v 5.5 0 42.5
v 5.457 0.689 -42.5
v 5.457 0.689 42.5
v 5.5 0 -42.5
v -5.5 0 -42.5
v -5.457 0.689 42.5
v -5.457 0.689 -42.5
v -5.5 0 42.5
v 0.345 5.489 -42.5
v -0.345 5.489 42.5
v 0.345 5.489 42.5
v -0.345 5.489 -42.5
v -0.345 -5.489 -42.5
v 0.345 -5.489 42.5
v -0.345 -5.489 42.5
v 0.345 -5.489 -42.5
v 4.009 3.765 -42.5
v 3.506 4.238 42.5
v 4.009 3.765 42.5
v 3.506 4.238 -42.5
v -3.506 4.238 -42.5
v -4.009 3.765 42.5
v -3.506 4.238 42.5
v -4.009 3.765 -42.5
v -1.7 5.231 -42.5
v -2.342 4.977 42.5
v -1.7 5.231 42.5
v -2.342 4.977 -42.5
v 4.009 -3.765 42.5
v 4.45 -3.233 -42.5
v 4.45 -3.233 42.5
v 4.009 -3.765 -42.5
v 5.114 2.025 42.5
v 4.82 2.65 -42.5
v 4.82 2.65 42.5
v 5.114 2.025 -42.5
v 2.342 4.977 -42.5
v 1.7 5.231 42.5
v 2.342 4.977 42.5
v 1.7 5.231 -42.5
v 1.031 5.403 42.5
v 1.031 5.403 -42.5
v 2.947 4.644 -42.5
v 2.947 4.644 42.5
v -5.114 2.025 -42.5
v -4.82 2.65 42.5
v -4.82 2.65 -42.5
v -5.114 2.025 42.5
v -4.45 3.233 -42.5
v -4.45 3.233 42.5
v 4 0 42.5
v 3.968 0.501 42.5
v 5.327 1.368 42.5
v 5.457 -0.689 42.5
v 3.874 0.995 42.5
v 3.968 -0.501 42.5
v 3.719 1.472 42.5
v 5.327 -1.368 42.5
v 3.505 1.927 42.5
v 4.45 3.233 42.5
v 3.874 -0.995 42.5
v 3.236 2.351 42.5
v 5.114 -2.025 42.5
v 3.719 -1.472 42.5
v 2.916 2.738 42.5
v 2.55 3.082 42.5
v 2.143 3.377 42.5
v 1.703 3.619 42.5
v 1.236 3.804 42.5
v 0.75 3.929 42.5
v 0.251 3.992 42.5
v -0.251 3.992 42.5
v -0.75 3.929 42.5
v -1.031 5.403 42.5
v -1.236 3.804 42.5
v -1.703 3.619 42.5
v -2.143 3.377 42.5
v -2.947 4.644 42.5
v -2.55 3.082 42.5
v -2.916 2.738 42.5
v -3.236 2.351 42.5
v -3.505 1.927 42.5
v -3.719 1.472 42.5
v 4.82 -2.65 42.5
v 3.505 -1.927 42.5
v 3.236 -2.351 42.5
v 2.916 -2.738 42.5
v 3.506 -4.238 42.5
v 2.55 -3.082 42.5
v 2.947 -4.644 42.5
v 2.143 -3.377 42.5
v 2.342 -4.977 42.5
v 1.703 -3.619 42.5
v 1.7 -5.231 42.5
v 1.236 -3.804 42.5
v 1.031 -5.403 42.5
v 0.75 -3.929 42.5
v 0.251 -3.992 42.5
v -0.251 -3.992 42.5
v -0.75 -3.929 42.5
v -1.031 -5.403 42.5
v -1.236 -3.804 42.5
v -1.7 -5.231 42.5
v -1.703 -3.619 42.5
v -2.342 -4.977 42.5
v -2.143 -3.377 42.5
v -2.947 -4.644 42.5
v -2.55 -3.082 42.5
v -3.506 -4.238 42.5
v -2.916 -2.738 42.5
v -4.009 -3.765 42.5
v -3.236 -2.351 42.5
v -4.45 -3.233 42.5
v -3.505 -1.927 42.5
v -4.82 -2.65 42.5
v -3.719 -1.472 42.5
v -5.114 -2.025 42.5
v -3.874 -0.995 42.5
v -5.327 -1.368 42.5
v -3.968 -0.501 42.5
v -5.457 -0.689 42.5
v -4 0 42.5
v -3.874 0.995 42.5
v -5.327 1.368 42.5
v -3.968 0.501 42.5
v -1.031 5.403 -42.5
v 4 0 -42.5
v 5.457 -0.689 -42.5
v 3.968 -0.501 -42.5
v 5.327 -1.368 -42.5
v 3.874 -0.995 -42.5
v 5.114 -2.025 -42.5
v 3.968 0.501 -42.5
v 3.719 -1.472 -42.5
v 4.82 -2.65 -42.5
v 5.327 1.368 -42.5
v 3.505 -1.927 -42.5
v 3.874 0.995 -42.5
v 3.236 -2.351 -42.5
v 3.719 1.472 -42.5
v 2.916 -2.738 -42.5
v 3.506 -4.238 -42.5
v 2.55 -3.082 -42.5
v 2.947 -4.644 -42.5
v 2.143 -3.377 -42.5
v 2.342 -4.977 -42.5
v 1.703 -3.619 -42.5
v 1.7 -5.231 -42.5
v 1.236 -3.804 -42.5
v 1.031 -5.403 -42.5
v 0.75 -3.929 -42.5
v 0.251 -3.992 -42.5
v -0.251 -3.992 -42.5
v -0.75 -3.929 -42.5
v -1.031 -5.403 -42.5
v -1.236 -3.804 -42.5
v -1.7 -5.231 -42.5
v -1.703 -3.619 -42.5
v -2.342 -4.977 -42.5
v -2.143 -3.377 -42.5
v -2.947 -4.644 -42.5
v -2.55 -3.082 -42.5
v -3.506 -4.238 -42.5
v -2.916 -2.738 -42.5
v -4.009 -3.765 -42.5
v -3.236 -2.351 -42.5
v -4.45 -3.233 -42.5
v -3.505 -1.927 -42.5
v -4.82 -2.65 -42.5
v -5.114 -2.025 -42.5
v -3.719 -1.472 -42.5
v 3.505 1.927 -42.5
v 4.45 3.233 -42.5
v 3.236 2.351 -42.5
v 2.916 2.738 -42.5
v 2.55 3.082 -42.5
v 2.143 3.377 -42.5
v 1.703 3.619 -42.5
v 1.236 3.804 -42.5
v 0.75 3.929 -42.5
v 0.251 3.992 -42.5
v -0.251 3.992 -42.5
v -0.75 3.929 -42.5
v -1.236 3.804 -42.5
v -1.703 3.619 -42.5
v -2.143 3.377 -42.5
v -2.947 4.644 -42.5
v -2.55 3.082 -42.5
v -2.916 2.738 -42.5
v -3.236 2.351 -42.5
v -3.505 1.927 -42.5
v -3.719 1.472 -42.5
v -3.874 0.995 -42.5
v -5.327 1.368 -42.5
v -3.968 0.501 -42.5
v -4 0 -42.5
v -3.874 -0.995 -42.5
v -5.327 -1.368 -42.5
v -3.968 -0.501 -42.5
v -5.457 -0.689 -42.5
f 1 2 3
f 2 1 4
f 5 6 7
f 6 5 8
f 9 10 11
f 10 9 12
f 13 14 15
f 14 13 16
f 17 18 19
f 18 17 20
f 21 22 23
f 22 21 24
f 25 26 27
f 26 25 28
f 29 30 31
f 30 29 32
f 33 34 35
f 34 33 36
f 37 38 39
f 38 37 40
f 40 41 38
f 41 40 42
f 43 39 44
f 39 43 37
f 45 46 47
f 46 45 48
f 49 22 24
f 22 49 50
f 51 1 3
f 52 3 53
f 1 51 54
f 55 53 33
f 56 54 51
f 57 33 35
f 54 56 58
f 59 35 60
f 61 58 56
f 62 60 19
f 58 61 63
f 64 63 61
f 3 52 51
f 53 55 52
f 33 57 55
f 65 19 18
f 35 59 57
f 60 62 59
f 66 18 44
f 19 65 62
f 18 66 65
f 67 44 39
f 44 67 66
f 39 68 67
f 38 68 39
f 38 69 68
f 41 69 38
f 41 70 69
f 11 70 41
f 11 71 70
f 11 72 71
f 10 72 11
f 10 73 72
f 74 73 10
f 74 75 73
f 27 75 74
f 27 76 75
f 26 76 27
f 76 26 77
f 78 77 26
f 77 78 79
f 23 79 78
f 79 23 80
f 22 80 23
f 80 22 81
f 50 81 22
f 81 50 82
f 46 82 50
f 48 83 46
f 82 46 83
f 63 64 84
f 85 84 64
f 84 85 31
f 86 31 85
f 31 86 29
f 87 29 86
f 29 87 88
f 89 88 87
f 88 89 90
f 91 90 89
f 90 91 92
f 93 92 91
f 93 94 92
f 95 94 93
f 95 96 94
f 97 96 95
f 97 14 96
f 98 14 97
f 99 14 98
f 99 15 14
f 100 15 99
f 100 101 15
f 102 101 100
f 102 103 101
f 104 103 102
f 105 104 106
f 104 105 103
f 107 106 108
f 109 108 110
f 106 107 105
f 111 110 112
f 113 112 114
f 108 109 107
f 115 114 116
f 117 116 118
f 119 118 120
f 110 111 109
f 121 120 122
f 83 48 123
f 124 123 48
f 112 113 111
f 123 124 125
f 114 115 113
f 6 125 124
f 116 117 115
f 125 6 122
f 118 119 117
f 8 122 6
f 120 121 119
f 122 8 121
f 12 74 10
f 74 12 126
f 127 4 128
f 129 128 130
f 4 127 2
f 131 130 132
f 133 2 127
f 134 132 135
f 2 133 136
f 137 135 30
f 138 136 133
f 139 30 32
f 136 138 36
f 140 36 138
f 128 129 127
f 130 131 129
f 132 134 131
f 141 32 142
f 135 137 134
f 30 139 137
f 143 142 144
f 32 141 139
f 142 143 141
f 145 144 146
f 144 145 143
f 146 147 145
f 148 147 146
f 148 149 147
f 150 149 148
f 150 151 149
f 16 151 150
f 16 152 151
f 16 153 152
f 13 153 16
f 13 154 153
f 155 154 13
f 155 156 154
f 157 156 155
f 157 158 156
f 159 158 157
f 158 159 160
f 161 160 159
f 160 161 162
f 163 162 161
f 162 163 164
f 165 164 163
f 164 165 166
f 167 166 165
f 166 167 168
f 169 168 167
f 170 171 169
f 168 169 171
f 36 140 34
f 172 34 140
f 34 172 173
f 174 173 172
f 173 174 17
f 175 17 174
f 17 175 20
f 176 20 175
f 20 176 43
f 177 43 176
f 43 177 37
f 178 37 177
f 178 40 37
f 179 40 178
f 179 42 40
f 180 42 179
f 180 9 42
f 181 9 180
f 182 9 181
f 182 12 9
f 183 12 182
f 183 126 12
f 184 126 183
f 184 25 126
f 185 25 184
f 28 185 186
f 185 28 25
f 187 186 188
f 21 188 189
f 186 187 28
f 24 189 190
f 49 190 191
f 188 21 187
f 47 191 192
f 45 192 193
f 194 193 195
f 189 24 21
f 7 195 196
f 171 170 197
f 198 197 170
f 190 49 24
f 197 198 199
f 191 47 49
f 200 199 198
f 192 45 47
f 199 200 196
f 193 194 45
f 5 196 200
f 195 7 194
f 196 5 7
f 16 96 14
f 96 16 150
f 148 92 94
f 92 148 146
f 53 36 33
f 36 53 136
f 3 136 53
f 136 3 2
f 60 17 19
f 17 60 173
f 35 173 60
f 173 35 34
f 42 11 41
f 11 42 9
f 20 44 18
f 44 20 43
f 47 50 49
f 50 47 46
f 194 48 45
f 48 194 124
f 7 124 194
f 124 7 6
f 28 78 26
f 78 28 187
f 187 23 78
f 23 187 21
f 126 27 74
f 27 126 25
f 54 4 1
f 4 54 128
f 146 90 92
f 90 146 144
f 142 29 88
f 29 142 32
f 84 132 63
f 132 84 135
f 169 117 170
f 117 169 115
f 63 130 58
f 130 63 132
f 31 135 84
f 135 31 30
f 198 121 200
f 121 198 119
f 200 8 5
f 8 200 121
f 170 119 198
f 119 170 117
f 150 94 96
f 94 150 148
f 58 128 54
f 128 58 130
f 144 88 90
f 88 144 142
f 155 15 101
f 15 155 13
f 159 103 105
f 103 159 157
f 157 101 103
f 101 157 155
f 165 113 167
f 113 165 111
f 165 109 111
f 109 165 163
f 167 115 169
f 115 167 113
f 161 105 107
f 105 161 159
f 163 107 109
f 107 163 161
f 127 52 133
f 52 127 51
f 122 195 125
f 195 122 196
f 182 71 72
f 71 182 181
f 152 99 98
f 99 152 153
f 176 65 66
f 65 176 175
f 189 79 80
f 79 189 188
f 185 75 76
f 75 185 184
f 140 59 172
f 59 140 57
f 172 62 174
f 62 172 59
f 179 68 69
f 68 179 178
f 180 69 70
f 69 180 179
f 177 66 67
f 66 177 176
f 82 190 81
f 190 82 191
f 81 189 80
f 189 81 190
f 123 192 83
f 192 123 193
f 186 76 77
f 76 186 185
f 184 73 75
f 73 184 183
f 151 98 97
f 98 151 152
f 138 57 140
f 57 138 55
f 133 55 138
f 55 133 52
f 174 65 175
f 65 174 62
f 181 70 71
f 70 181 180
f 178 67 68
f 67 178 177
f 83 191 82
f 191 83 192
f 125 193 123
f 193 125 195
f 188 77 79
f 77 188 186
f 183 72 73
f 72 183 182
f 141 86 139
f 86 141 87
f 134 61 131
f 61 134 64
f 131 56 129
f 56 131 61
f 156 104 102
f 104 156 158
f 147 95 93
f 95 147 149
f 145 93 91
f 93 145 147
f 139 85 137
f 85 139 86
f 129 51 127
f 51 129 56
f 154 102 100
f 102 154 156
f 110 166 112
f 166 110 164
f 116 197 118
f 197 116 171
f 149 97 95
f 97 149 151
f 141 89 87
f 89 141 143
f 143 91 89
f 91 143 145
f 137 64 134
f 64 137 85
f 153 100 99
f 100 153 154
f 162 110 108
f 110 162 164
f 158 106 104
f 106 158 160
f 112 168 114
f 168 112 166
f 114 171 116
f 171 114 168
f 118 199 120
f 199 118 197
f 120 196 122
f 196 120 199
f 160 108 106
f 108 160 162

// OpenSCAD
$fn = 50;


difference() {
	union() {
		translate(v = [0, 0, -42.5000000000]) {
			cylinder(h = 85, r = 5.5000000000);
		}
	}
	union() {
		translate(v = [0, 0, -100.0000000000]) {
			cylinder(h = 200, r = 4);
		}
	}
}
